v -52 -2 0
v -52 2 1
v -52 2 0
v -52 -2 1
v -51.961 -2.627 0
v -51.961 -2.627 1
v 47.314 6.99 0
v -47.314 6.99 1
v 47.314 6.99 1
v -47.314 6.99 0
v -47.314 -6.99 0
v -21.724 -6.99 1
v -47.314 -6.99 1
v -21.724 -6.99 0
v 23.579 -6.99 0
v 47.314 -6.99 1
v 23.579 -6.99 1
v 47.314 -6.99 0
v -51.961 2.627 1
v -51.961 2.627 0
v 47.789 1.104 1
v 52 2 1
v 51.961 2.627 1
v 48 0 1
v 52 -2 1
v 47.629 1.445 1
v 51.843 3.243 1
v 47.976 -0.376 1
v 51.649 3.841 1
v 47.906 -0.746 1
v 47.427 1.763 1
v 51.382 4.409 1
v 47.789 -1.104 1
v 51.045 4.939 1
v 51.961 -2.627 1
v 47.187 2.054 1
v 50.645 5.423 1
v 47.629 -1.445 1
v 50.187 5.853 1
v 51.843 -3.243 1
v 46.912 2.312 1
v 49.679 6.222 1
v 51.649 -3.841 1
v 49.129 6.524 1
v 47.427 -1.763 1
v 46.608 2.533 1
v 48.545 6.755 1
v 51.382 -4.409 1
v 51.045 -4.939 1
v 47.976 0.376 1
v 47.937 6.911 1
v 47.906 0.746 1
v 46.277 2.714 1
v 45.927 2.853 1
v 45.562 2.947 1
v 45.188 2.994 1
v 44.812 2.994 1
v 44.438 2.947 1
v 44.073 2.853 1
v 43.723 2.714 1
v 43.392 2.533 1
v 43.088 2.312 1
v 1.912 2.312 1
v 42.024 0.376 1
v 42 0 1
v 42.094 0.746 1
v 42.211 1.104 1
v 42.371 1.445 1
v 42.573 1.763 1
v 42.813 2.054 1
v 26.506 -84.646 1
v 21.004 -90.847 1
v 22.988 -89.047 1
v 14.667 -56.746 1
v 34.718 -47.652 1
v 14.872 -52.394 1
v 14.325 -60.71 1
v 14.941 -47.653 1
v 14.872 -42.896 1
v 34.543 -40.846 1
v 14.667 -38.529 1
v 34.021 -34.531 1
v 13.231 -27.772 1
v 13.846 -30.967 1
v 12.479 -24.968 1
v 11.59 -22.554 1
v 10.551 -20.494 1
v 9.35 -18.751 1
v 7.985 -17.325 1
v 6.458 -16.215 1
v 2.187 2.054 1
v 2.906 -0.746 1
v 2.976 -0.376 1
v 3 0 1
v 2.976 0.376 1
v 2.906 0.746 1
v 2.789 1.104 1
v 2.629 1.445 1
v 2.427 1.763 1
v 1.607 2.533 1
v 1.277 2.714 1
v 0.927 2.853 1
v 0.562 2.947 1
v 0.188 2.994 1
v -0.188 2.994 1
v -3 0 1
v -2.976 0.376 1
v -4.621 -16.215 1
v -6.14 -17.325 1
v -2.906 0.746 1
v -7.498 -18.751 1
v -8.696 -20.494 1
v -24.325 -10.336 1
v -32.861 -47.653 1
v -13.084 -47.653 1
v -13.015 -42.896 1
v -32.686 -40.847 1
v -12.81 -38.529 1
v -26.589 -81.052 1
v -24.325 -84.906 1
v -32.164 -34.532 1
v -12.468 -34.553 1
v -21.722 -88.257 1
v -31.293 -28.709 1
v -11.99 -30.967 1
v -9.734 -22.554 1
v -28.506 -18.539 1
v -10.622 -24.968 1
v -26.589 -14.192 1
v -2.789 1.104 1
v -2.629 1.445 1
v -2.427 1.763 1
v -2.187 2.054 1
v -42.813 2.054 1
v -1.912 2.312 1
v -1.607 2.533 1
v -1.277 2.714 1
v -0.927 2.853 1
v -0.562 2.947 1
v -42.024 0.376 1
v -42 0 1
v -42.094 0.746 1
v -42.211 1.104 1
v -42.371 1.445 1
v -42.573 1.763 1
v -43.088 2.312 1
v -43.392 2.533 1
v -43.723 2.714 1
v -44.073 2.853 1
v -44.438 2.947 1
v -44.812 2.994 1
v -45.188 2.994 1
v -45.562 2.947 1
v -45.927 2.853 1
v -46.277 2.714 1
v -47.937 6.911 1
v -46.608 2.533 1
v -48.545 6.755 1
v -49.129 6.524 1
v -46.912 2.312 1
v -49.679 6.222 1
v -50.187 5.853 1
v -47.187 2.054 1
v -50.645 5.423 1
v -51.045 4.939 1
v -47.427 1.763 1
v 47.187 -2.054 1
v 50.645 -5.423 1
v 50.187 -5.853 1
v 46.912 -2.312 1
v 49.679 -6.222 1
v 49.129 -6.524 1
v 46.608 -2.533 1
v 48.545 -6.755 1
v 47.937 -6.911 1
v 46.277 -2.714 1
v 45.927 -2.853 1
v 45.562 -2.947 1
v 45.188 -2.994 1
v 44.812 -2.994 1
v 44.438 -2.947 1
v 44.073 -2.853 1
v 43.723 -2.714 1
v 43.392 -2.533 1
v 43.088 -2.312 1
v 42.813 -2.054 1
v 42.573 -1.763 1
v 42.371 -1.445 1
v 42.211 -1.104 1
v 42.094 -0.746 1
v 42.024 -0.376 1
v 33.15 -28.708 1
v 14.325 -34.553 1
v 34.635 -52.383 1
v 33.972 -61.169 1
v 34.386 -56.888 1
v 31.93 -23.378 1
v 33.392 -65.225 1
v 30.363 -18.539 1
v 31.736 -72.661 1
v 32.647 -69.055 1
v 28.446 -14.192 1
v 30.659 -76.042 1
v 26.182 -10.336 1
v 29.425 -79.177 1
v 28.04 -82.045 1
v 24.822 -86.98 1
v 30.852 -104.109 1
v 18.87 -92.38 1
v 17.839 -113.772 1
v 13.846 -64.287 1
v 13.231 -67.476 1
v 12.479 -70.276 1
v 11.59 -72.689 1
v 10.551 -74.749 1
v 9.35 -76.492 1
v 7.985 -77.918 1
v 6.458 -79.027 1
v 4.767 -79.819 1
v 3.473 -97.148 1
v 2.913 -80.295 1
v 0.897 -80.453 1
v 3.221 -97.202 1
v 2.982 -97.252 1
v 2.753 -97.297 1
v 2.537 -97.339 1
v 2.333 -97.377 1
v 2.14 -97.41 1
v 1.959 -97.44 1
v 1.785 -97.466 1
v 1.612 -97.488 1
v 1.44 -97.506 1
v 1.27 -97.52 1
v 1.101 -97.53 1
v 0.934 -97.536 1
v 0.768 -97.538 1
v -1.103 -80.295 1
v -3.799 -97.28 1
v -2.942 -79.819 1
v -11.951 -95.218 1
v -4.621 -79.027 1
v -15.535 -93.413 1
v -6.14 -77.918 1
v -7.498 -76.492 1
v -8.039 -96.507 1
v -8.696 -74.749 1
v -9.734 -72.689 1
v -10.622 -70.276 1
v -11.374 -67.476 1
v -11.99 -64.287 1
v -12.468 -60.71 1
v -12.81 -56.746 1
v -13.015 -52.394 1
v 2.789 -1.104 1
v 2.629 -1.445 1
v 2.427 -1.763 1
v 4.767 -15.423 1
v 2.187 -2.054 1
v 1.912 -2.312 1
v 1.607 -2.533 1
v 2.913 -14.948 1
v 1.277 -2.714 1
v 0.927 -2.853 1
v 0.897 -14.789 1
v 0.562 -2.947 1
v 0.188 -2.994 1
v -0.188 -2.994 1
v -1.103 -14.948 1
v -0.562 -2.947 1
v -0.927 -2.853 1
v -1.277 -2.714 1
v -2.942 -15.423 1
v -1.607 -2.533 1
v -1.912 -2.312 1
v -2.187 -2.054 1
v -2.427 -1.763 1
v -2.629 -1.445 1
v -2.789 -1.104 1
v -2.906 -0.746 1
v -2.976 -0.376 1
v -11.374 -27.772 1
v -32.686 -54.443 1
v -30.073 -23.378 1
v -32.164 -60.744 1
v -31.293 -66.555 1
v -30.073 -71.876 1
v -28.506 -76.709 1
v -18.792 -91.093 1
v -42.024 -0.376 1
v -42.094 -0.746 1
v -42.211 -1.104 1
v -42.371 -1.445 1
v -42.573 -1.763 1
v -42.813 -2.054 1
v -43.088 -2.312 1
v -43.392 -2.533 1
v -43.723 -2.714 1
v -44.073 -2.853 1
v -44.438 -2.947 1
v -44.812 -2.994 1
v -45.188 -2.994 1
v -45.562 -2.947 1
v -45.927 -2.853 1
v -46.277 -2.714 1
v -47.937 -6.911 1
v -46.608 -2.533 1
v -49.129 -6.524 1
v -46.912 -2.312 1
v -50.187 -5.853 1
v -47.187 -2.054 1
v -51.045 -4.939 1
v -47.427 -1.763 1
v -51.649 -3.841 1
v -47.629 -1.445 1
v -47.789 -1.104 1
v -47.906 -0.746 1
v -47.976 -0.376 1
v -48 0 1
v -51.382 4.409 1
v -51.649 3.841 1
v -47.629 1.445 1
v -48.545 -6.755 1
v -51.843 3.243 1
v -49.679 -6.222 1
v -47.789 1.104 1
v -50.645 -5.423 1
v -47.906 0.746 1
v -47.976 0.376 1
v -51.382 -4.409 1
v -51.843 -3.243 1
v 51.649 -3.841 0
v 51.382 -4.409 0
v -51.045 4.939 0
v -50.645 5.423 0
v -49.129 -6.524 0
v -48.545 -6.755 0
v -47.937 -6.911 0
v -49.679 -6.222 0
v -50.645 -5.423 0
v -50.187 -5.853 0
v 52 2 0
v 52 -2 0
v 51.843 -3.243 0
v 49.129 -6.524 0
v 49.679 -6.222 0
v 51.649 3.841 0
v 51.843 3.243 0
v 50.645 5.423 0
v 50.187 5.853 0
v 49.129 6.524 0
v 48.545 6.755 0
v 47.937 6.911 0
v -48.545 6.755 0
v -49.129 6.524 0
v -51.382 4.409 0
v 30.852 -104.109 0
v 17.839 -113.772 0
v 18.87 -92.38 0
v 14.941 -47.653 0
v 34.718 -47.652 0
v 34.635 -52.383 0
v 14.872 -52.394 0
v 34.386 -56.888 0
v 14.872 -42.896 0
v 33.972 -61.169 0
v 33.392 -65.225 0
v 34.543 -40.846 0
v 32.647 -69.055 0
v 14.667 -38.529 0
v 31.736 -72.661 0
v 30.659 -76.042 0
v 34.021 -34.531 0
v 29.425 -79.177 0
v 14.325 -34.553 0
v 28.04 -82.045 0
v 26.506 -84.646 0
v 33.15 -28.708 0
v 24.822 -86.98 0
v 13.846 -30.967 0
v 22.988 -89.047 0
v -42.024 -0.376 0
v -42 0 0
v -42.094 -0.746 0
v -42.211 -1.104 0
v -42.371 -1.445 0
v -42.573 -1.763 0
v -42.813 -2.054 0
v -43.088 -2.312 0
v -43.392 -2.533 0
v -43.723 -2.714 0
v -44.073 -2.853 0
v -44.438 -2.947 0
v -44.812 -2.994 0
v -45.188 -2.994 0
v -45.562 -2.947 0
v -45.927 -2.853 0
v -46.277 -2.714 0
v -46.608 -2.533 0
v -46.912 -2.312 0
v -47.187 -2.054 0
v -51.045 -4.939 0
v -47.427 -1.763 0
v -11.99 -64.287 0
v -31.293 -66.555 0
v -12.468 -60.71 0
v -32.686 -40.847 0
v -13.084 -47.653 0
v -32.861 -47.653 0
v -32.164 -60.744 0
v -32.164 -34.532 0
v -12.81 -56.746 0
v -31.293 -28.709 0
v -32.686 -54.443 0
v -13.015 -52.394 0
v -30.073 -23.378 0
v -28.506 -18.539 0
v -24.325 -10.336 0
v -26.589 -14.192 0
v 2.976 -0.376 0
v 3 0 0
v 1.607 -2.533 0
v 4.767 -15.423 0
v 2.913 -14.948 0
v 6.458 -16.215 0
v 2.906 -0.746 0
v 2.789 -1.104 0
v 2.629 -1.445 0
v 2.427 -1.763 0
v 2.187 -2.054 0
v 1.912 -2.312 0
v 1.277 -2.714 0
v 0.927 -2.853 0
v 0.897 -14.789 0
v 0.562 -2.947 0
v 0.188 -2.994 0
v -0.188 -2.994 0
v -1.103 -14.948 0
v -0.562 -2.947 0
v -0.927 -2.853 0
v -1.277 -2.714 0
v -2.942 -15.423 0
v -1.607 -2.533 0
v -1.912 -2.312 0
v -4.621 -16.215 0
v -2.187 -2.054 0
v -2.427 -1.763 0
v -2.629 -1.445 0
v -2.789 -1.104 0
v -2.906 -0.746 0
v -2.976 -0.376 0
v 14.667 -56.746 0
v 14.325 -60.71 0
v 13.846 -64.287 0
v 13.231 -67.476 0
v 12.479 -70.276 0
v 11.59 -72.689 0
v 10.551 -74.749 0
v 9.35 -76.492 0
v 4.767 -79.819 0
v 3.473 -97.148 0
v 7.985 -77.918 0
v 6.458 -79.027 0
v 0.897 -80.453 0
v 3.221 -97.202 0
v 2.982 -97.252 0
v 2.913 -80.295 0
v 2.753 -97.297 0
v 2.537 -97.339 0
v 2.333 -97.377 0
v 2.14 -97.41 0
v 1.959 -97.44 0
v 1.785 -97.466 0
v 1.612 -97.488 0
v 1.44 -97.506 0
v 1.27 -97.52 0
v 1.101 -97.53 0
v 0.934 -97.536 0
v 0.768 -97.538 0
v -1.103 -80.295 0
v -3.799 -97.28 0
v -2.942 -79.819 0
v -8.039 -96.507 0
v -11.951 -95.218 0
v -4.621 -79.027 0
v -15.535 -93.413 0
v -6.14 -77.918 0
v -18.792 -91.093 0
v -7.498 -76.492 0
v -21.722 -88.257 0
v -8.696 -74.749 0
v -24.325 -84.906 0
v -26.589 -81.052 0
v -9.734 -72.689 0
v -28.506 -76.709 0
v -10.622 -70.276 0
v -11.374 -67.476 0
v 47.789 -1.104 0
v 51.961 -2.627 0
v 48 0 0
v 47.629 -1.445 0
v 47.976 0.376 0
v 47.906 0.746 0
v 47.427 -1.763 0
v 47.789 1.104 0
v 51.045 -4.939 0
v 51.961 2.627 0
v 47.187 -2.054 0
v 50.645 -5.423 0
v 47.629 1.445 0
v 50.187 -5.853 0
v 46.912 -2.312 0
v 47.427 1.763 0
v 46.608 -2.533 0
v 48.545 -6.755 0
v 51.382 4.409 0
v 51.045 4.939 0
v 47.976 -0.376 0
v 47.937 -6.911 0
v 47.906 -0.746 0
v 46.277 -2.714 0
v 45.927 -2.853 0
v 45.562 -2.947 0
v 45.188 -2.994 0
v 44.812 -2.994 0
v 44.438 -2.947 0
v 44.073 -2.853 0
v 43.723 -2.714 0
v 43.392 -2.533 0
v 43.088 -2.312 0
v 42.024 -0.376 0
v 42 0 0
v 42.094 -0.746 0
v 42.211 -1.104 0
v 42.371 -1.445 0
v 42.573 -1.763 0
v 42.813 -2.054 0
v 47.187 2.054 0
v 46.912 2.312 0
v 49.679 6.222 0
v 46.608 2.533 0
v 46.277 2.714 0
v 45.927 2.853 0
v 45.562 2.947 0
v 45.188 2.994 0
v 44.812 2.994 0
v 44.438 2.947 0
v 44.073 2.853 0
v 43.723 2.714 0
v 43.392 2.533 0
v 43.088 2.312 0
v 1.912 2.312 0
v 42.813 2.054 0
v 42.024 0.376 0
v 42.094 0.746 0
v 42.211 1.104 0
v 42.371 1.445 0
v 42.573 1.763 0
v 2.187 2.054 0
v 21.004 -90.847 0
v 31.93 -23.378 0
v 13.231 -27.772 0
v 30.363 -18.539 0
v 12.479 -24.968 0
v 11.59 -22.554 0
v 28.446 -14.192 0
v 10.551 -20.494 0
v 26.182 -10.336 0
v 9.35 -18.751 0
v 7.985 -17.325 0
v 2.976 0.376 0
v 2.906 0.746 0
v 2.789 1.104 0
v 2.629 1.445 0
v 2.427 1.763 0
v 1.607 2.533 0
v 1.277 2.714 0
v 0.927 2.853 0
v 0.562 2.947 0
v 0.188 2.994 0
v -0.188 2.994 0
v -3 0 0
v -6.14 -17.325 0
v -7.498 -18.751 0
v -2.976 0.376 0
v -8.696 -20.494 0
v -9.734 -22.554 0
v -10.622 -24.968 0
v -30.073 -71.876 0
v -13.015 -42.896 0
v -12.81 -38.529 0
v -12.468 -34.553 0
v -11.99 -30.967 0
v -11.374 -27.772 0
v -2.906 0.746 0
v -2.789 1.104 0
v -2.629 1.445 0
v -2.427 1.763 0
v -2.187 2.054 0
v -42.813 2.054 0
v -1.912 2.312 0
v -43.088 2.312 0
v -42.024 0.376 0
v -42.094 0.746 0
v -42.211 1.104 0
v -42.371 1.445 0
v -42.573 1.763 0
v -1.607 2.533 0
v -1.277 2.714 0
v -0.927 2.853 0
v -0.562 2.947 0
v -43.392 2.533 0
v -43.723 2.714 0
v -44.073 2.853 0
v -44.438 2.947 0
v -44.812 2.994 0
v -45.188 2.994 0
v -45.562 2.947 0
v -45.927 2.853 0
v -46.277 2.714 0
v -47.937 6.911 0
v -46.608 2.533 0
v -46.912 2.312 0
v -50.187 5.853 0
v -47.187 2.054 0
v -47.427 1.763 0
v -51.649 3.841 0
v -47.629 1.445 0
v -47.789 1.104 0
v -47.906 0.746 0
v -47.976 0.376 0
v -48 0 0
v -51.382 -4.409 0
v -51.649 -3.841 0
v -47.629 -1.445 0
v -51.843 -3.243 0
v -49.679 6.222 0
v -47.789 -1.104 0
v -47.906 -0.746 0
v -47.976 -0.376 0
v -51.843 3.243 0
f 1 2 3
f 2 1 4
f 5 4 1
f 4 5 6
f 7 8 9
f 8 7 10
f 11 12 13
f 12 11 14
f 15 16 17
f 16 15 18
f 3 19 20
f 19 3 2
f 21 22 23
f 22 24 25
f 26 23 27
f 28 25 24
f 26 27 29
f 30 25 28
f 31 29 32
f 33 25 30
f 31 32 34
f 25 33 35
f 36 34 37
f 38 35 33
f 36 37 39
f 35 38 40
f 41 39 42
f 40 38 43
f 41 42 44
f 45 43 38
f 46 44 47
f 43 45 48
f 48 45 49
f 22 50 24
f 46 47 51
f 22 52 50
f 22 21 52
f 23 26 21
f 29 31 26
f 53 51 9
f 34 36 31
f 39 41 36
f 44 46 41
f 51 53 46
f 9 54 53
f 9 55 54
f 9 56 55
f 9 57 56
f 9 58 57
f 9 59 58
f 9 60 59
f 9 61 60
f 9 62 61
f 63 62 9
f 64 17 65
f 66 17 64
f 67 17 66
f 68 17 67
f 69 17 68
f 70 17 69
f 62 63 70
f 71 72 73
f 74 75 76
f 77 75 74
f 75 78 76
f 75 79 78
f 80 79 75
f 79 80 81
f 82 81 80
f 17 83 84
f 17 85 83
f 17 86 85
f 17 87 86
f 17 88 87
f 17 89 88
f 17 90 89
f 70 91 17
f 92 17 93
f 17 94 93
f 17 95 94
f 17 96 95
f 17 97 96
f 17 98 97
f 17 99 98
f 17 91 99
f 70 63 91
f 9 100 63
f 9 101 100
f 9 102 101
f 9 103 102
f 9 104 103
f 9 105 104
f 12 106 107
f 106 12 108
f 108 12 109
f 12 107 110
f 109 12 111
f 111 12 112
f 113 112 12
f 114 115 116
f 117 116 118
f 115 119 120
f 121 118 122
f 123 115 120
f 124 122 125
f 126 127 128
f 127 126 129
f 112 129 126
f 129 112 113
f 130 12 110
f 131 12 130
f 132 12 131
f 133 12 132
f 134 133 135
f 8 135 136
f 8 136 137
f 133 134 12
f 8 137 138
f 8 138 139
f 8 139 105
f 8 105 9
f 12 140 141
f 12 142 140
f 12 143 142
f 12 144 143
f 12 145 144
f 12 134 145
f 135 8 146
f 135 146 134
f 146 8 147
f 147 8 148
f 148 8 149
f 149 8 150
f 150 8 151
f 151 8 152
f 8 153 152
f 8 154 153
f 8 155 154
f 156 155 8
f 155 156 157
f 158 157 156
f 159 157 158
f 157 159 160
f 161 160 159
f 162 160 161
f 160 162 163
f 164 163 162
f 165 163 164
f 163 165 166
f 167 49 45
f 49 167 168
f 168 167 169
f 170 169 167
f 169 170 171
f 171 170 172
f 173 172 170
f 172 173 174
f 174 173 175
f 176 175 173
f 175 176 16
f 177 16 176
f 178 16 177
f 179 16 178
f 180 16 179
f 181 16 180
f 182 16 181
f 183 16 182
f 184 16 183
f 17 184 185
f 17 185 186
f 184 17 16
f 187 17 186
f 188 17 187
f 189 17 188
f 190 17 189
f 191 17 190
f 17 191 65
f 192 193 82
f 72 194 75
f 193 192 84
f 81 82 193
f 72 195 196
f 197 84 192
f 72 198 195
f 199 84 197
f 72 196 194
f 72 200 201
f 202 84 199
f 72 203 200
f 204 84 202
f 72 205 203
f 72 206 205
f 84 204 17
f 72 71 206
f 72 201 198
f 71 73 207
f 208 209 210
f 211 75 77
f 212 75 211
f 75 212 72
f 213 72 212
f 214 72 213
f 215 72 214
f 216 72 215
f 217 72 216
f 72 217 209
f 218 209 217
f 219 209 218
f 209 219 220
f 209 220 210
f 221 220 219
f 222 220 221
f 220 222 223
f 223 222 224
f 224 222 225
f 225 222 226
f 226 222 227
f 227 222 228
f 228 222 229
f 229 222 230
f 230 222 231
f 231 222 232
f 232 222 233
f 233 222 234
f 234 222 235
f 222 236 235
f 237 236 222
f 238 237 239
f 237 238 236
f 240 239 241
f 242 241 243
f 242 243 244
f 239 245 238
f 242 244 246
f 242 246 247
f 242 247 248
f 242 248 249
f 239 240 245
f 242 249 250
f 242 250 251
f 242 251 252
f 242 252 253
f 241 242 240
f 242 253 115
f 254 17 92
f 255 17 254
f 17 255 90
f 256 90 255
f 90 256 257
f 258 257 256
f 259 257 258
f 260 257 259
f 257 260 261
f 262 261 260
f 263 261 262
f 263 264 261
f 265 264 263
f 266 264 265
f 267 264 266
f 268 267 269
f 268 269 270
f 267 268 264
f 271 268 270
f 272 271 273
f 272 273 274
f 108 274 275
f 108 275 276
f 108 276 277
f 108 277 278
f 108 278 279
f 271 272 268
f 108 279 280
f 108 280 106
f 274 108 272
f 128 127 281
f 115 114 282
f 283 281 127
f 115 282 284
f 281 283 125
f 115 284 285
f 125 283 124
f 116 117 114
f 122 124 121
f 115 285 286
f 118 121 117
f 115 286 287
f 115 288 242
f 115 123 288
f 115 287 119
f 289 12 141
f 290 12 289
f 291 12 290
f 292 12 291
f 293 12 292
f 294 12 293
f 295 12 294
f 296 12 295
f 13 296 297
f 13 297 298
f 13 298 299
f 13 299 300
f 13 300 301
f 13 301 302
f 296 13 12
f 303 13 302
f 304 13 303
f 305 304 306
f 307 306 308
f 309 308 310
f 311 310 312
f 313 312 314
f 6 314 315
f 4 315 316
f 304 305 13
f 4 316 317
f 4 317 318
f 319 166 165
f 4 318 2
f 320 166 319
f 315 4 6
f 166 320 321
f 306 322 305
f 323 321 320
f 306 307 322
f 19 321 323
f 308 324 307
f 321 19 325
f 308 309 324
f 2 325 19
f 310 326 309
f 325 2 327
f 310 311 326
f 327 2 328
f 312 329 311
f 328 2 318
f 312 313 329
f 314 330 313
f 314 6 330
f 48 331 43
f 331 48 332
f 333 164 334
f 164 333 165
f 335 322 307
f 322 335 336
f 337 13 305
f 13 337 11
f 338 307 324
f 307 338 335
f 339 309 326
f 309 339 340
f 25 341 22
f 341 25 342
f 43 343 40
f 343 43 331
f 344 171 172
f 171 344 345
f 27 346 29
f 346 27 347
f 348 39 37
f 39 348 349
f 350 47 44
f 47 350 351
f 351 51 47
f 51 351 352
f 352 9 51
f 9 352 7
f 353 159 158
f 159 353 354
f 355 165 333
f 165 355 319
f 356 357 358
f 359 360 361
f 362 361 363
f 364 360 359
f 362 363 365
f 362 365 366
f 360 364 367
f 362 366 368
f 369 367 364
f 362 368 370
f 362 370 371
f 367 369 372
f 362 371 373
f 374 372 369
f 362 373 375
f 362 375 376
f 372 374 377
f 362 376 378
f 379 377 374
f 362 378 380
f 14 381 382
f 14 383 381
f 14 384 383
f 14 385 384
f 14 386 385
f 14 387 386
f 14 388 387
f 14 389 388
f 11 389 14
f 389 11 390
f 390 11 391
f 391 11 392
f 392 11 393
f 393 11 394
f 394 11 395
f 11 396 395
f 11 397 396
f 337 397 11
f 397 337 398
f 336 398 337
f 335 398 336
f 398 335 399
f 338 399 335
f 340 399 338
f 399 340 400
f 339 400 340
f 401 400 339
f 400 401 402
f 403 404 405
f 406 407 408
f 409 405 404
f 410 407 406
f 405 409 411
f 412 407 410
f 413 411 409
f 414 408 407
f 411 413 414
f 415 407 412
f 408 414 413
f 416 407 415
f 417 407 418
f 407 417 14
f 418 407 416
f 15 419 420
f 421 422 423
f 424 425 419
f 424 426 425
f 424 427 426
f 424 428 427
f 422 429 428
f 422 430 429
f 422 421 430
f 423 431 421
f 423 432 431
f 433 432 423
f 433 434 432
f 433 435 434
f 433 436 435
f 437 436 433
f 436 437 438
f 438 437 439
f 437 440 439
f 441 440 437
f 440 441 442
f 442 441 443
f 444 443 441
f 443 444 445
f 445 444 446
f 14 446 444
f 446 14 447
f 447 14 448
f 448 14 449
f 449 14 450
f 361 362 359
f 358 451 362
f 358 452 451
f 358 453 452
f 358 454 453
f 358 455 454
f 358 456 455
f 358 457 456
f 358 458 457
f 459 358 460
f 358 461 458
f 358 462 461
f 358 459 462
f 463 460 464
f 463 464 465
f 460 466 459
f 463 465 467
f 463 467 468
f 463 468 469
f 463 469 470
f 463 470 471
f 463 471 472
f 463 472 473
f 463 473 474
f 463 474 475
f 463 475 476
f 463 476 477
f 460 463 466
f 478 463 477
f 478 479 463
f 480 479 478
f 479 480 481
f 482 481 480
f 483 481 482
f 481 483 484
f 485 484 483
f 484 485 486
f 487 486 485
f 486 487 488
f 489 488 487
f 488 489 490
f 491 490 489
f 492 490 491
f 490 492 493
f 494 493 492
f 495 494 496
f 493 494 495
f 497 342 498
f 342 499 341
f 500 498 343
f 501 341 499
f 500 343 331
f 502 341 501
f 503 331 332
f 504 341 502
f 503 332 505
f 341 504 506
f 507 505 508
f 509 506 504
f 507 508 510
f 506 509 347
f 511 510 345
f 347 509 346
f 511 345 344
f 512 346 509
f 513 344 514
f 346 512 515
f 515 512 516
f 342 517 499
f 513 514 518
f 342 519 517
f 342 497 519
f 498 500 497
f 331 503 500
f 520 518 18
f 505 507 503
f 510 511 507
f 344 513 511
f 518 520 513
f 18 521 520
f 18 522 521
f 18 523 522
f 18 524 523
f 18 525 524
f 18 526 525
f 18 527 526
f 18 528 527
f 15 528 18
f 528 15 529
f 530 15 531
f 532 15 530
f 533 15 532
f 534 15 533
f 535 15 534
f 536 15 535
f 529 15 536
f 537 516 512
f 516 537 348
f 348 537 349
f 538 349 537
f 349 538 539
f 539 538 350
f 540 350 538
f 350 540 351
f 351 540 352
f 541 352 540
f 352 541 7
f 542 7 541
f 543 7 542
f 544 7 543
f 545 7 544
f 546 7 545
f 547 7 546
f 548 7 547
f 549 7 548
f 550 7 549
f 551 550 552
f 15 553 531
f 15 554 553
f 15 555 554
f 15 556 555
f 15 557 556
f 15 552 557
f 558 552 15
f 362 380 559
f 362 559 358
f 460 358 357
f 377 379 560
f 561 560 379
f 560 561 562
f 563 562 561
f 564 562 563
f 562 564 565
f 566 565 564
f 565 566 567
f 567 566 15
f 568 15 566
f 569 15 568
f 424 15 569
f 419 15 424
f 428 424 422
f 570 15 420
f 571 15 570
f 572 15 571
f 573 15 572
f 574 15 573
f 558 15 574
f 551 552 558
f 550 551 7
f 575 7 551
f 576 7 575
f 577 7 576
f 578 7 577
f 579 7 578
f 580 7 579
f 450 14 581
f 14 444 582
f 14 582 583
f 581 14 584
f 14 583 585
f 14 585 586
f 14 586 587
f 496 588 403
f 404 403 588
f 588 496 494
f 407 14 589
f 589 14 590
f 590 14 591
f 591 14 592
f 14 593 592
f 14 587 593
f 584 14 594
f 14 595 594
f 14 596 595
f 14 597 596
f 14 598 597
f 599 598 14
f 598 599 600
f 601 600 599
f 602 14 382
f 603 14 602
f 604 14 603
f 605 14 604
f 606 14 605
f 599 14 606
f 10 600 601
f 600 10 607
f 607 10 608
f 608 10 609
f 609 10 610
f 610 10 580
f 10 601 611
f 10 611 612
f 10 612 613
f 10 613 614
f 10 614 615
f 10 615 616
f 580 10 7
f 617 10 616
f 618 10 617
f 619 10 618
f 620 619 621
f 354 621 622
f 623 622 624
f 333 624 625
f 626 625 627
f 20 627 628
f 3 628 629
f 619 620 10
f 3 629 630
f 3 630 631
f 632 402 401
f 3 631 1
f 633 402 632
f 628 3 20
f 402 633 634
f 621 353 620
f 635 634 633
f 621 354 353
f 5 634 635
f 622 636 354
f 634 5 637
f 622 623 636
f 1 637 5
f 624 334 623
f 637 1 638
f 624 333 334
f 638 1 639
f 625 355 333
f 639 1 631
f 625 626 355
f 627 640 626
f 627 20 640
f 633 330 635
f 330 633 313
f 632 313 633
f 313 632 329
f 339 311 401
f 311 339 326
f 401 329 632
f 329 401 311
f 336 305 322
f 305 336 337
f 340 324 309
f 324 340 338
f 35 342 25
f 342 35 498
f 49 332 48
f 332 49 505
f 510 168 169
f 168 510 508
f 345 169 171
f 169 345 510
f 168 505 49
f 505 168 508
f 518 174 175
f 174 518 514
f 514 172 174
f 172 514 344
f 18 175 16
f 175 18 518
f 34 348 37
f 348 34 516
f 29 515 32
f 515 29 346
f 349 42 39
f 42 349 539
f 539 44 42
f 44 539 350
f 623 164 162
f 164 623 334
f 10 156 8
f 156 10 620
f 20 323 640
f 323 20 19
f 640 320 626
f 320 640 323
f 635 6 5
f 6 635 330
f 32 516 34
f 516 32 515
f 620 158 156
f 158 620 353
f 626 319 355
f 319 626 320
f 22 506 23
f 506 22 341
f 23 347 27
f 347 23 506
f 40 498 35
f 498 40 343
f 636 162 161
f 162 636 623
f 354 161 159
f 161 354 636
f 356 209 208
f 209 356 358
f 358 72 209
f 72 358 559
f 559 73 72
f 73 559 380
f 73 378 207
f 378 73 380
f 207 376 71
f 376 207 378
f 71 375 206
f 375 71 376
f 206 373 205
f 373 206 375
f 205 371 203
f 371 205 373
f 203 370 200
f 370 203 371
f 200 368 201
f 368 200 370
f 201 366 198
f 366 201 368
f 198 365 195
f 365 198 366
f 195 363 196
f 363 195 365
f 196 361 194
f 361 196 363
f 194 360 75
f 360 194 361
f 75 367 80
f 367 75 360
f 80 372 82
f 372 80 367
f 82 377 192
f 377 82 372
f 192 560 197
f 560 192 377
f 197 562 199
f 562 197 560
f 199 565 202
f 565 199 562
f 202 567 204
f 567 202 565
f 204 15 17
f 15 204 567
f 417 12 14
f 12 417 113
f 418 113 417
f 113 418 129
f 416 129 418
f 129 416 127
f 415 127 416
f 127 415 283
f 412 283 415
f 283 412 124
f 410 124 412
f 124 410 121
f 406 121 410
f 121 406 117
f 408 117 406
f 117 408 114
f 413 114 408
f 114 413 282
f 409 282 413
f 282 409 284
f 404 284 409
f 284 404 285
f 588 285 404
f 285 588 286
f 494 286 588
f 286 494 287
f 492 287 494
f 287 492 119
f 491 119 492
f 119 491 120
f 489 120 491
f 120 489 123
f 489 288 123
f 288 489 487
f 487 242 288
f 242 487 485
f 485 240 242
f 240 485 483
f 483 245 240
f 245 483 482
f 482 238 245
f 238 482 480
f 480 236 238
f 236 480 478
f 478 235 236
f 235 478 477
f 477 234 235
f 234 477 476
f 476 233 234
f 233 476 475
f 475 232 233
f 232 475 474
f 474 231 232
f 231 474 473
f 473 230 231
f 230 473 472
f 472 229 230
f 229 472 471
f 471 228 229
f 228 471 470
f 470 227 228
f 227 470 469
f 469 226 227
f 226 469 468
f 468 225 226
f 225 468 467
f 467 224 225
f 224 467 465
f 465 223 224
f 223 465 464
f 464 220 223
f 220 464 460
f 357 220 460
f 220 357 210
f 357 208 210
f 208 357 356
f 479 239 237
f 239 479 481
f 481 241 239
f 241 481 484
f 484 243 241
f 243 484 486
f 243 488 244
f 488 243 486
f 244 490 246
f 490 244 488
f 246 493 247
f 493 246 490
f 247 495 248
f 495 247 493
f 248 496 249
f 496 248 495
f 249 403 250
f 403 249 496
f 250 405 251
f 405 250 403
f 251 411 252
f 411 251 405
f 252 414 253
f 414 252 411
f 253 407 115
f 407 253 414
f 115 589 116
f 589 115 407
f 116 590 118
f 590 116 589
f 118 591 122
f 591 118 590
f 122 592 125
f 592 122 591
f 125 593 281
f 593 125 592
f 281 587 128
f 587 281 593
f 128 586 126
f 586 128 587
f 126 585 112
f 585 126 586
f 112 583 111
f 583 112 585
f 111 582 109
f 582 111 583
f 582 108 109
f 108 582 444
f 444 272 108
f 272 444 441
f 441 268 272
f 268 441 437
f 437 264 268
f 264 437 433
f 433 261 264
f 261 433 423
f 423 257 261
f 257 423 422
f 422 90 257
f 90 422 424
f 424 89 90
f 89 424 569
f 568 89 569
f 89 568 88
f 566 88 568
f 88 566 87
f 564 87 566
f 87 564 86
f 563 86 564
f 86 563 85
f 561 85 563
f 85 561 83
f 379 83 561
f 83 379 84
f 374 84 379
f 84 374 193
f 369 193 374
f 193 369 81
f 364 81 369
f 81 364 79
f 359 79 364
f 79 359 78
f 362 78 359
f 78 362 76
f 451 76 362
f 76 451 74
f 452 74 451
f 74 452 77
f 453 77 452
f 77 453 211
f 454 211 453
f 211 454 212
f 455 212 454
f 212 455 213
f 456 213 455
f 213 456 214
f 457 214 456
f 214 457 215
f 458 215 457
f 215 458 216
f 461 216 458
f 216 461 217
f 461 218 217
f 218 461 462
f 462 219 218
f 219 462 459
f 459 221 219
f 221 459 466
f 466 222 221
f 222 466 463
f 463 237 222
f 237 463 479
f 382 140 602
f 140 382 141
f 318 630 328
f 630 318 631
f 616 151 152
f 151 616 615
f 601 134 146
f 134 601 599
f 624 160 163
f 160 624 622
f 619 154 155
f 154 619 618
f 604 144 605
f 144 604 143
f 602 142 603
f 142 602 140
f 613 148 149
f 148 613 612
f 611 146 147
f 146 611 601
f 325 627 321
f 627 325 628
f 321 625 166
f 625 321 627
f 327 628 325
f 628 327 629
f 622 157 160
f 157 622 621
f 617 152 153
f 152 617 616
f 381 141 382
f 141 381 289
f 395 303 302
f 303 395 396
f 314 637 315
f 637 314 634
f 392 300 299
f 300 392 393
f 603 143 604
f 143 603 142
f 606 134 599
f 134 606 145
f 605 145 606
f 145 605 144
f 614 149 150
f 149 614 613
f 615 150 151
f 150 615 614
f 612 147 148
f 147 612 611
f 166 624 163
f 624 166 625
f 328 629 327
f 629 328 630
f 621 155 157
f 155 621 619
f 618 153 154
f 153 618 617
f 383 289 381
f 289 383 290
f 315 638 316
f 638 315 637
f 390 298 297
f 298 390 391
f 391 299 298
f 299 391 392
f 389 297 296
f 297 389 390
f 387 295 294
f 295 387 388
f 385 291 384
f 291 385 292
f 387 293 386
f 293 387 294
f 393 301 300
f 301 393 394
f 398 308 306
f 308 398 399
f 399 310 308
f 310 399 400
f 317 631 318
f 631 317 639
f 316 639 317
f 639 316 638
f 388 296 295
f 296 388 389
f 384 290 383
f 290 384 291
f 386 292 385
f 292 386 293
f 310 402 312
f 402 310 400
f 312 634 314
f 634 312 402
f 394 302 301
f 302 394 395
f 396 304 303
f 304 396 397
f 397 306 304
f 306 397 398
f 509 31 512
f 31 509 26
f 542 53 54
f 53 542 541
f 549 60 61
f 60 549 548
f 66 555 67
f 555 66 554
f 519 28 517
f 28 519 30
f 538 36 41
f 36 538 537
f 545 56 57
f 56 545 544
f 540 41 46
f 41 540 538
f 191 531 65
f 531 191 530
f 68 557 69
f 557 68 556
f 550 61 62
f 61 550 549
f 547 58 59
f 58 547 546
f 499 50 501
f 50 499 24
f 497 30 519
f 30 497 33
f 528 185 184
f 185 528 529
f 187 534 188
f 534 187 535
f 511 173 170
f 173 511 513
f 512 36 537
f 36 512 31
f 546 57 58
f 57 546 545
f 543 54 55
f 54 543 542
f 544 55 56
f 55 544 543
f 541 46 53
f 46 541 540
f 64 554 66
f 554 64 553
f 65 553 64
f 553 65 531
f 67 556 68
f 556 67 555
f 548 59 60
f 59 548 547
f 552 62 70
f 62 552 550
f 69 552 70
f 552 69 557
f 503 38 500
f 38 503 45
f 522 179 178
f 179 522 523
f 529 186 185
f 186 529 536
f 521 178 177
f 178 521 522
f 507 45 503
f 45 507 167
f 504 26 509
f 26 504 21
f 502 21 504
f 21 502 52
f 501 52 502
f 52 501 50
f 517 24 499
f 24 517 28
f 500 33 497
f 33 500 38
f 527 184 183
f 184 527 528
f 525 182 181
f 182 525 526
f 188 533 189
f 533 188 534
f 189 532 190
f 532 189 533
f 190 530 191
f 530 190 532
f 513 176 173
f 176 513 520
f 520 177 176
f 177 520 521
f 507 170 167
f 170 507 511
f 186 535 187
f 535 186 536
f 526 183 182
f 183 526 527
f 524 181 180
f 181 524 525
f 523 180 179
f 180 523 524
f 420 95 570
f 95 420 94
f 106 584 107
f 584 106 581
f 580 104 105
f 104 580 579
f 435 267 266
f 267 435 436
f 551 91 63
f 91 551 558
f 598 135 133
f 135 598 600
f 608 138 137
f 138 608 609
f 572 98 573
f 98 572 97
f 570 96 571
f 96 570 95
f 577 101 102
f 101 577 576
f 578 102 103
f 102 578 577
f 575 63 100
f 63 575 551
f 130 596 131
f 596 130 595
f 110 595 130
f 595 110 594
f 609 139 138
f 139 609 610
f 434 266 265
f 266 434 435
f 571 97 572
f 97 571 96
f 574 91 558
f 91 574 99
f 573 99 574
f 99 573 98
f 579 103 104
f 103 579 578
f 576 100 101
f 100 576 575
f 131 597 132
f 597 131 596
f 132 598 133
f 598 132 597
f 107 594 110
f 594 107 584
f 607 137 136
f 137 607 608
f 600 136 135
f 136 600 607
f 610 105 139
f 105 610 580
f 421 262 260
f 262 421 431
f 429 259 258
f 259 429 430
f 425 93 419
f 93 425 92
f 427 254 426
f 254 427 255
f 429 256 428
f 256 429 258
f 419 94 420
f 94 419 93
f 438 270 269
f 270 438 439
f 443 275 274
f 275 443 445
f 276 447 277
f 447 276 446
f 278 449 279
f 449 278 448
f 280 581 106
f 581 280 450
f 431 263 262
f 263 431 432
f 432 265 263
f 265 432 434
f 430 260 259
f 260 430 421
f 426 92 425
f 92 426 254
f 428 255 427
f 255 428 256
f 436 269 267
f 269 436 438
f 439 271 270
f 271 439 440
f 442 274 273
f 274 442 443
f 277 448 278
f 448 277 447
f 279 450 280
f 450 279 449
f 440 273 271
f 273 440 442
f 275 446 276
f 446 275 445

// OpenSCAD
$fn = 50;


difference() {
	union() {
		translate(v = [0, 0, 0]) {
			rotate(a = [0, 0, 0]) {
				hull() {
					translate(v = [-47.0000000000, 2.0000000000, 0]) {
						rotate(a = [0, 0, 0]) {
							translate(v = [0, 0, 0]) {
								rotate(a = [0, 0, 0]) {
									cylinder(h = 1, r = 5);
								}
							}
						}
					}
					translate(v = [47.0000000000, 2.0000000000, 0]) {
						rotate(a = [0, 0, 0]) {
							translate(v = [0, 0, 0]) {
								rotate(a = [0, 0, 0]) {
									cylinder(h = 1, r = 5);
								}
							}
						}
					}
					translate(v = [-47.0000000000, -2.0000000000, 0]) {
						rotate(a = [0, 0, 0]) {
							translate(v = [0, 0, 0]) {
								rotate(a = [0, 0, 0]) {
									cylinder(h = 1, r = 5);
								}
							}
						}
					}
					translate(v = [47.0000000000, -2.0000000000, 0]) {
						rotate(a = [0, 0, 0]) {
							translate(v = [0, 0, 0]) {
								rotate(a = [0, 0, 0]) {
									cylinder(h = 1, r = 5);
								}
							}
						}
					}
				}
			}
		}
		translate(v = [0, 0, 0]) {
			rotate(a = [0, 0, 0]) {
				linear_extrude(height = 1) {
					text(font = "DejaVu Sans Mono:style=Bold", halign = "center", size = 95.0000000000, text = "Q", valign = "top");
				}
			}
		}
	}
	union() {
		translate(v = [-45.0000000000, 0.0000000000, -125.0000000000]) {
			rotate(a = [0, 0, 0]) {
				cylinder(h = 250, r = 3.0000000000);
			}
		}
		translate(v = [45.0000000000, 0.0000000000, -125.0000000000]) {
			rotate(a = [0, 0, 0]) {
				cylinder(h = 250, r = 3.0000000000);
			}
		}
		translate(v = [45.0000000000, 0.0000000000, -125.0000000000]) {
			rotate(a = [0, 0, 0]) {
				cylinder(h = 250, r = 3.0000000000);
			}
		}
		translate(v = [0, 0, -125.0000000000]) {
			rotate(a = [0, 0, 0]) {
				cylinder(h = 250, r = 3.0000000000);
			}
		}
	}
}
